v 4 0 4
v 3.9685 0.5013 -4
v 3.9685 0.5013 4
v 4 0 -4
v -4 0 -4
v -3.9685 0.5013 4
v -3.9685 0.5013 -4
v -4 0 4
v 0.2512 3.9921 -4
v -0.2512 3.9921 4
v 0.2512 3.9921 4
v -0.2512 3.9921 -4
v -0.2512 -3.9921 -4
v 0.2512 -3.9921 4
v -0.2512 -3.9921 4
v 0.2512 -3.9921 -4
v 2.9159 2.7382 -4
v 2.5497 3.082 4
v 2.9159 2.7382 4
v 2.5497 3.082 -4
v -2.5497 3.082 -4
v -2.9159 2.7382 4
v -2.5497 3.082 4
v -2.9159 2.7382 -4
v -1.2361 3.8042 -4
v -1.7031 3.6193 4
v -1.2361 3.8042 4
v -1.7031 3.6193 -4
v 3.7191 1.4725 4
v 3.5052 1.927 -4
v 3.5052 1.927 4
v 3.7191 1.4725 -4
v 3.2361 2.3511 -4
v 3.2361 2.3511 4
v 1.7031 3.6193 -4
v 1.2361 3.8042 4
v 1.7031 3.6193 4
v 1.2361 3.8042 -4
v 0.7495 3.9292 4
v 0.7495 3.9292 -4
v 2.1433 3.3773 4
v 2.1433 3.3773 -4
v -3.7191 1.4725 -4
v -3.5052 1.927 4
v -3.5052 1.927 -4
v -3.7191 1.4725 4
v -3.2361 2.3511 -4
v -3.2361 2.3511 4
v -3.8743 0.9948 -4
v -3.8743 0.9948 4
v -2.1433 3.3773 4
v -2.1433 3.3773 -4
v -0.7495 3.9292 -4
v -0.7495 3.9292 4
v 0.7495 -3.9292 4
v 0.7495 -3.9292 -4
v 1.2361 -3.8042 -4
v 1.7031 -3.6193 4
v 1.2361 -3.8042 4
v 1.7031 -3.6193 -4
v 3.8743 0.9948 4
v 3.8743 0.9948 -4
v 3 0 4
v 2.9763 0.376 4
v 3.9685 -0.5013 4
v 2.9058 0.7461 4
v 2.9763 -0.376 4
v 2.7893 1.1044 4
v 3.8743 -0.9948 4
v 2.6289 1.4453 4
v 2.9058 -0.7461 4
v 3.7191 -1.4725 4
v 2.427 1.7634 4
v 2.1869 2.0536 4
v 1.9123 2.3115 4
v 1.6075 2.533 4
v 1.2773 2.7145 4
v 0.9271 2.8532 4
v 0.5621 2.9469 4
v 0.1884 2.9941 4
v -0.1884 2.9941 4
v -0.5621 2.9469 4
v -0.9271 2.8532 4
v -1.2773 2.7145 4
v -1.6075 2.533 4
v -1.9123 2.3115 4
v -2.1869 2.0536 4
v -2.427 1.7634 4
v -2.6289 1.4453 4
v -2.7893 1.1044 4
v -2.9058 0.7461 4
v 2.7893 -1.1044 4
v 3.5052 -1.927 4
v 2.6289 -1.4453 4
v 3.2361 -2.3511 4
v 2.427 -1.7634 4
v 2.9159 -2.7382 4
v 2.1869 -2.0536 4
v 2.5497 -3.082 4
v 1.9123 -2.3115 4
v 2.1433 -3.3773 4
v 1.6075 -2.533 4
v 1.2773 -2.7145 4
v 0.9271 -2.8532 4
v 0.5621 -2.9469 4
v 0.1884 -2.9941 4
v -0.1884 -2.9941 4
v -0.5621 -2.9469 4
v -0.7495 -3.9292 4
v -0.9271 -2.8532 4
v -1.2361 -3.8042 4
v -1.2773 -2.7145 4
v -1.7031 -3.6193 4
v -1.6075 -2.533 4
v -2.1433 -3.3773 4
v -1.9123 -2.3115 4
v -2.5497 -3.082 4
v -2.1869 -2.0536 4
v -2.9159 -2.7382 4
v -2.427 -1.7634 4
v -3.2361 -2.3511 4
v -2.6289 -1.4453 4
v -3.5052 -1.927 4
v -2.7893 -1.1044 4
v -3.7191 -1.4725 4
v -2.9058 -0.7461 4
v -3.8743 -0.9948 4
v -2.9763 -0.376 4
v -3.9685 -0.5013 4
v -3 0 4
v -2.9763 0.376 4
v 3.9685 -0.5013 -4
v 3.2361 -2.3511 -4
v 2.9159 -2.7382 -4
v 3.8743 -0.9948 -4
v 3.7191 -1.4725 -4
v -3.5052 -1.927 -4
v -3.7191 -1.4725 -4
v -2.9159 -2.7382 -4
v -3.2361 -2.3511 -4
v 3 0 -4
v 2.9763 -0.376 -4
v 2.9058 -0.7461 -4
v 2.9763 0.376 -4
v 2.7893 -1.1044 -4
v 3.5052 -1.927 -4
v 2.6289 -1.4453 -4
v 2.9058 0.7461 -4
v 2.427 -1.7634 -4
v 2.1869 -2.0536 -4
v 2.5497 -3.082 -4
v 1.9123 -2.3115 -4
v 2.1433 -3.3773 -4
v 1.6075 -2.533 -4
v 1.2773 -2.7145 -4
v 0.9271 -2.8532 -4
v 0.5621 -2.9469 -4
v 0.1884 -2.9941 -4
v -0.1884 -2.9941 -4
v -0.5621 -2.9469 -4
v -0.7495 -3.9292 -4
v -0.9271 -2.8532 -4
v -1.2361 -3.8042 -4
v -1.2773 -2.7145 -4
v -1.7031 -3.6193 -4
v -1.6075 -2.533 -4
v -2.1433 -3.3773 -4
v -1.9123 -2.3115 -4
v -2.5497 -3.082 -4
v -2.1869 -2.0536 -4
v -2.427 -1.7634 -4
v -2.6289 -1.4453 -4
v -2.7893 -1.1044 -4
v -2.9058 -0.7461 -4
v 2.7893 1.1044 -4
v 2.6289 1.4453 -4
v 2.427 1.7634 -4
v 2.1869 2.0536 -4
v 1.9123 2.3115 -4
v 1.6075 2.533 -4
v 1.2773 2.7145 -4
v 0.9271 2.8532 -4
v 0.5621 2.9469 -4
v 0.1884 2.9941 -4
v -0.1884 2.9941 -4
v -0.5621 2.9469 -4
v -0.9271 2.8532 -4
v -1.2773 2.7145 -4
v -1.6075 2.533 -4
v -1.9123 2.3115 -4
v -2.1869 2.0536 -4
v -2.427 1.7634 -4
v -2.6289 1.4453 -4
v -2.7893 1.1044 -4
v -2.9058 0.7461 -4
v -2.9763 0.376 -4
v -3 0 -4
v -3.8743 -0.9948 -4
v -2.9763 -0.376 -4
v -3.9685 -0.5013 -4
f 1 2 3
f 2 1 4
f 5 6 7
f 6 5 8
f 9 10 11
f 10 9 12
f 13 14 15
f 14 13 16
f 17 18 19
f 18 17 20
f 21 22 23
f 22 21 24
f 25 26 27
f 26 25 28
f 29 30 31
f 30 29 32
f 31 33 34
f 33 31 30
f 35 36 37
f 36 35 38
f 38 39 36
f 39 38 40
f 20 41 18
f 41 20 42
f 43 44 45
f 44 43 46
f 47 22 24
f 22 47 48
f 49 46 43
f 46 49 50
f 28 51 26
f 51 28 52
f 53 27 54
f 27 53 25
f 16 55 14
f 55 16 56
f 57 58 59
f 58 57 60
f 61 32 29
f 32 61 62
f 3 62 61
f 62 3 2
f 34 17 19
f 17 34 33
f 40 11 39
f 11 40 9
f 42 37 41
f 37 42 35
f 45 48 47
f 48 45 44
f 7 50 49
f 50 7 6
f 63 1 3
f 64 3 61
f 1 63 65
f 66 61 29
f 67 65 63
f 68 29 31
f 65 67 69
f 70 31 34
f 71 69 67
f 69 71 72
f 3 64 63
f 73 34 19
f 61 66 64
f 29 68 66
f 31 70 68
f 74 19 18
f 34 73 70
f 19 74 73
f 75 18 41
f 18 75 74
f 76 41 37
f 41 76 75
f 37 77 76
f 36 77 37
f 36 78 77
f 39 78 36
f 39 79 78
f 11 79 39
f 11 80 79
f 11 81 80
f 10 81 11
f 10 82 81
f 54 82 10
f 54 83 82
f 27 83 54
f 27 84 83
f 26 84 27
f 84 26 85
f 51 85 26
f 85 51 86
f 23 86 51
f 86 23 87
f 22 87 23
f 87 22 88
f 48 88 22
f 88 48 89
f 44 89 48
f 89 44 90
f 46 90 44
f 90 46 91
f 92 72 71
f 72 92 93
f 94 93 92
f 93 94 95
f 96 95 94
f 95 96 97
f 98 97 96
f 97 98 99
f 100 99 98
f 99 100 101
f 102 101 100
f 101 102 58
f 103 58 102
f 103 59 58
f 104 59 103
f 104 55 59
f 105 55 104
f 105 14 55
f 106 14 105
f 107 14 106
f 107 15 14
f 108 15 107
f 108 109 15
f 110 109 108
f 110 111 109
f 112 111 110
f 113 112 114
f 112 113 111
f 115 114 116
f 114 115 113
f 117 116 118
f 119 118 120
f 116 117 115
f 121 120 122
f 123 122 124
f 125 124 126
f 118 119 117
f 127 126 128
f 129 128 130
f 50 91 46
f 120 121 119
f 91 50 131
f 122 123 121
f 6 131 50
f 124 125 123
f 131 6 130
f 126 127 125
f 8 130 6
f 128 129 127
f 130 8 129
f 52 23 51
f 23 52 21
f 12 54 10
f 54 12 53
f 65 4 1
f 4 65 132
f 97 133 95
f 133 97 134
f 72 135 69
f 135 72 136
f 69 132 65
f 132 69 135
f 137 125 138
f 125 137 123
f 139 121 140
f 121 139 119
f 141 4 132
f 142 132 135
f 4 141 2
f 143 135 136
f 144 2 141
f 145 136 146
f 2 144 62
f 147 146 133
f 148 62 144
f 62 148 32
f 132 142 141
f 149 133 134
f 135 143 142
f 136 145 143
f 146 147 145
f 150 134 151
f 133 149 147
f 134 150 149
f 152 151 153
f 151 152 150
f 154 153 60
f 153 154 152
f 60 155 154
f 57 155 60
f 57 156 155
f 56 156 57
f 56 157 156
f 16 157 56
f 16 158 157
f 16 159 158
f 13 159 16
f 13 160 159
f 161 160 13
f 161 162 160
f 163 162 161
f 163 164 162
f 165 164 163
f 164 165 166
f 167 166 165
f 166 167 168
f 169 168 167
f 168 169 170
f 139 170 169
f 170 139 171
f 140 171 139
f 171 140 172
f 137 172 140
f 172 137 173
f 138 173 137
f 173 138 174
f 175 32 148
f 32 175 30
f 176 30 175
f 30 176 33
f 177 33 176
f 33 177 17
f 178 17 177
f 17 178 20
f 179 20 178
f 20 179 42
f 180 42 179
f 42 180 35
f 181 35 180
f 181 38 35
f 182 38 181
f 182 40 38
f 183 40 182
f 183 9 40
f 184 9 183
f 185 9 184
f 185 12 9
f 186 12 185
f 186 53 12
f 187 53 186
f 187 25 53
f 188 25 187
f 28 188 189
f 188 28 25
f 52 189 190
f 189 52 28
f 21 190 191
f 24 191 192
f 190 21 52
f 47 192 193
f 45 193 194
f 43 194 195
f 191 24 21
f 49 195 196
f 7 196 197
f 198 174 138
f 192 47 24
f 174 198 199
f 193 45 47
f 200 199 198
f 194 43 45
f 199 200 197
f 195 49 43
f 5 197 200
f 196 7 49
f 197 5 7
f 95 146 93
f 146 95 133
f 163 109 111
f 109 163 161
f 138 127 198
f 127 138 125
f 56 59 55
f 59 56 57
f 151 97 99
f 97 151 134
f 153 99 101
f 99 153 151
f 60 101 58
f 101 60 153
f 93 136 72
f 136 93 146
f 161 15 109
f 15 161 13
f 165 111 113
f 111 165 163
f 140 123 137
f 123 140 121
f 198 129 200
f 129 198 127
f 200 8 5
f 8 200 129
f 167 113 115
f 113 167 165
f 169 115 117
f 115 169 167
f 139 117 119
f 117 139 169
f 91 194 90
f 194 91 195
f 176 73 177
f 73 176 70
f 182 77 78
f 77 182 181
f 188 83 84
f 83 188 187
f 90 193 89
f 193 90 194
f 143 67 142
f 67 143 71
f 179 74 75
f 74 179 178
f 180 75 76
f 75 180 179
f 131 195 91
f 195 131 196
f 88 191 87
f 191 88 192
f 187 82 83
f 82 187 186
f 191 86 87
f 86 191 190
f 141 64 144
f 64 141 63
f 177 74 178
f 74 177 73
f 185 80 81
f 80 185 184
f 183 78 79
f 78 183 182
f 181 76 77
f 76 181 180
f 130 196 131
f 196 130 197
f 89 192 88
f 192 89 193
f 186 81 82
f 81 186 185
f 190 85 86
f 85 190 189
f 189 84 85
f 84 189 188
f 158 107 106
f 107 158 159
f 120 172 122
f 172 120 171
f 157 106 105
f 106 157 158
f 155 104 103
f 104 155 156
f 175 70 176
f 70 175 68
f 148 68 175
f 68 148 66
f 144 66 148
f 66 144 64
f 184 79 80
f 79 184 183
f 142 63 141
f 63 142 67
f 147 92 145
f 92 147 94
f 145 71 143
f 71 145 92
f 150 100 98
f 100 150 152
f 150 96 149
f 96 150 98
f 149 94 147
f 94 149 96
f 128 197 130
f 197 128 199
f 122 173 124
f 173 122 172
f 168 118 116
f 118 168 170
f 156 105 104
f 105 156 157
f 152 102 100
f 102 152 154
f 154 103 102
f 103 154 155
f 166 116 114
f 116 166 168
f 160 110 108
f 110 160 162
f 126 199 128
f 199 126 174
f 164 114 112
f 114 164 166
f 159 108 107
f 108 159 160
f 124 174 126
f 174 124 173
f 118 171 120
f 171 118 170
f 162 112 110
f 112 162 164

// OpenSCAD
$fn = 50;


difference() {
	union() {
		translate(v = [0, 0, -4.0000000000]) {
			cylinder(h = 8, r = 4.0000000000);
		}
	}
	union() {
		translate(v = [0, 0, -100.0000000000]) {
			cylinder(h = 200, r = 3.0000000000);
		}
	}
}
